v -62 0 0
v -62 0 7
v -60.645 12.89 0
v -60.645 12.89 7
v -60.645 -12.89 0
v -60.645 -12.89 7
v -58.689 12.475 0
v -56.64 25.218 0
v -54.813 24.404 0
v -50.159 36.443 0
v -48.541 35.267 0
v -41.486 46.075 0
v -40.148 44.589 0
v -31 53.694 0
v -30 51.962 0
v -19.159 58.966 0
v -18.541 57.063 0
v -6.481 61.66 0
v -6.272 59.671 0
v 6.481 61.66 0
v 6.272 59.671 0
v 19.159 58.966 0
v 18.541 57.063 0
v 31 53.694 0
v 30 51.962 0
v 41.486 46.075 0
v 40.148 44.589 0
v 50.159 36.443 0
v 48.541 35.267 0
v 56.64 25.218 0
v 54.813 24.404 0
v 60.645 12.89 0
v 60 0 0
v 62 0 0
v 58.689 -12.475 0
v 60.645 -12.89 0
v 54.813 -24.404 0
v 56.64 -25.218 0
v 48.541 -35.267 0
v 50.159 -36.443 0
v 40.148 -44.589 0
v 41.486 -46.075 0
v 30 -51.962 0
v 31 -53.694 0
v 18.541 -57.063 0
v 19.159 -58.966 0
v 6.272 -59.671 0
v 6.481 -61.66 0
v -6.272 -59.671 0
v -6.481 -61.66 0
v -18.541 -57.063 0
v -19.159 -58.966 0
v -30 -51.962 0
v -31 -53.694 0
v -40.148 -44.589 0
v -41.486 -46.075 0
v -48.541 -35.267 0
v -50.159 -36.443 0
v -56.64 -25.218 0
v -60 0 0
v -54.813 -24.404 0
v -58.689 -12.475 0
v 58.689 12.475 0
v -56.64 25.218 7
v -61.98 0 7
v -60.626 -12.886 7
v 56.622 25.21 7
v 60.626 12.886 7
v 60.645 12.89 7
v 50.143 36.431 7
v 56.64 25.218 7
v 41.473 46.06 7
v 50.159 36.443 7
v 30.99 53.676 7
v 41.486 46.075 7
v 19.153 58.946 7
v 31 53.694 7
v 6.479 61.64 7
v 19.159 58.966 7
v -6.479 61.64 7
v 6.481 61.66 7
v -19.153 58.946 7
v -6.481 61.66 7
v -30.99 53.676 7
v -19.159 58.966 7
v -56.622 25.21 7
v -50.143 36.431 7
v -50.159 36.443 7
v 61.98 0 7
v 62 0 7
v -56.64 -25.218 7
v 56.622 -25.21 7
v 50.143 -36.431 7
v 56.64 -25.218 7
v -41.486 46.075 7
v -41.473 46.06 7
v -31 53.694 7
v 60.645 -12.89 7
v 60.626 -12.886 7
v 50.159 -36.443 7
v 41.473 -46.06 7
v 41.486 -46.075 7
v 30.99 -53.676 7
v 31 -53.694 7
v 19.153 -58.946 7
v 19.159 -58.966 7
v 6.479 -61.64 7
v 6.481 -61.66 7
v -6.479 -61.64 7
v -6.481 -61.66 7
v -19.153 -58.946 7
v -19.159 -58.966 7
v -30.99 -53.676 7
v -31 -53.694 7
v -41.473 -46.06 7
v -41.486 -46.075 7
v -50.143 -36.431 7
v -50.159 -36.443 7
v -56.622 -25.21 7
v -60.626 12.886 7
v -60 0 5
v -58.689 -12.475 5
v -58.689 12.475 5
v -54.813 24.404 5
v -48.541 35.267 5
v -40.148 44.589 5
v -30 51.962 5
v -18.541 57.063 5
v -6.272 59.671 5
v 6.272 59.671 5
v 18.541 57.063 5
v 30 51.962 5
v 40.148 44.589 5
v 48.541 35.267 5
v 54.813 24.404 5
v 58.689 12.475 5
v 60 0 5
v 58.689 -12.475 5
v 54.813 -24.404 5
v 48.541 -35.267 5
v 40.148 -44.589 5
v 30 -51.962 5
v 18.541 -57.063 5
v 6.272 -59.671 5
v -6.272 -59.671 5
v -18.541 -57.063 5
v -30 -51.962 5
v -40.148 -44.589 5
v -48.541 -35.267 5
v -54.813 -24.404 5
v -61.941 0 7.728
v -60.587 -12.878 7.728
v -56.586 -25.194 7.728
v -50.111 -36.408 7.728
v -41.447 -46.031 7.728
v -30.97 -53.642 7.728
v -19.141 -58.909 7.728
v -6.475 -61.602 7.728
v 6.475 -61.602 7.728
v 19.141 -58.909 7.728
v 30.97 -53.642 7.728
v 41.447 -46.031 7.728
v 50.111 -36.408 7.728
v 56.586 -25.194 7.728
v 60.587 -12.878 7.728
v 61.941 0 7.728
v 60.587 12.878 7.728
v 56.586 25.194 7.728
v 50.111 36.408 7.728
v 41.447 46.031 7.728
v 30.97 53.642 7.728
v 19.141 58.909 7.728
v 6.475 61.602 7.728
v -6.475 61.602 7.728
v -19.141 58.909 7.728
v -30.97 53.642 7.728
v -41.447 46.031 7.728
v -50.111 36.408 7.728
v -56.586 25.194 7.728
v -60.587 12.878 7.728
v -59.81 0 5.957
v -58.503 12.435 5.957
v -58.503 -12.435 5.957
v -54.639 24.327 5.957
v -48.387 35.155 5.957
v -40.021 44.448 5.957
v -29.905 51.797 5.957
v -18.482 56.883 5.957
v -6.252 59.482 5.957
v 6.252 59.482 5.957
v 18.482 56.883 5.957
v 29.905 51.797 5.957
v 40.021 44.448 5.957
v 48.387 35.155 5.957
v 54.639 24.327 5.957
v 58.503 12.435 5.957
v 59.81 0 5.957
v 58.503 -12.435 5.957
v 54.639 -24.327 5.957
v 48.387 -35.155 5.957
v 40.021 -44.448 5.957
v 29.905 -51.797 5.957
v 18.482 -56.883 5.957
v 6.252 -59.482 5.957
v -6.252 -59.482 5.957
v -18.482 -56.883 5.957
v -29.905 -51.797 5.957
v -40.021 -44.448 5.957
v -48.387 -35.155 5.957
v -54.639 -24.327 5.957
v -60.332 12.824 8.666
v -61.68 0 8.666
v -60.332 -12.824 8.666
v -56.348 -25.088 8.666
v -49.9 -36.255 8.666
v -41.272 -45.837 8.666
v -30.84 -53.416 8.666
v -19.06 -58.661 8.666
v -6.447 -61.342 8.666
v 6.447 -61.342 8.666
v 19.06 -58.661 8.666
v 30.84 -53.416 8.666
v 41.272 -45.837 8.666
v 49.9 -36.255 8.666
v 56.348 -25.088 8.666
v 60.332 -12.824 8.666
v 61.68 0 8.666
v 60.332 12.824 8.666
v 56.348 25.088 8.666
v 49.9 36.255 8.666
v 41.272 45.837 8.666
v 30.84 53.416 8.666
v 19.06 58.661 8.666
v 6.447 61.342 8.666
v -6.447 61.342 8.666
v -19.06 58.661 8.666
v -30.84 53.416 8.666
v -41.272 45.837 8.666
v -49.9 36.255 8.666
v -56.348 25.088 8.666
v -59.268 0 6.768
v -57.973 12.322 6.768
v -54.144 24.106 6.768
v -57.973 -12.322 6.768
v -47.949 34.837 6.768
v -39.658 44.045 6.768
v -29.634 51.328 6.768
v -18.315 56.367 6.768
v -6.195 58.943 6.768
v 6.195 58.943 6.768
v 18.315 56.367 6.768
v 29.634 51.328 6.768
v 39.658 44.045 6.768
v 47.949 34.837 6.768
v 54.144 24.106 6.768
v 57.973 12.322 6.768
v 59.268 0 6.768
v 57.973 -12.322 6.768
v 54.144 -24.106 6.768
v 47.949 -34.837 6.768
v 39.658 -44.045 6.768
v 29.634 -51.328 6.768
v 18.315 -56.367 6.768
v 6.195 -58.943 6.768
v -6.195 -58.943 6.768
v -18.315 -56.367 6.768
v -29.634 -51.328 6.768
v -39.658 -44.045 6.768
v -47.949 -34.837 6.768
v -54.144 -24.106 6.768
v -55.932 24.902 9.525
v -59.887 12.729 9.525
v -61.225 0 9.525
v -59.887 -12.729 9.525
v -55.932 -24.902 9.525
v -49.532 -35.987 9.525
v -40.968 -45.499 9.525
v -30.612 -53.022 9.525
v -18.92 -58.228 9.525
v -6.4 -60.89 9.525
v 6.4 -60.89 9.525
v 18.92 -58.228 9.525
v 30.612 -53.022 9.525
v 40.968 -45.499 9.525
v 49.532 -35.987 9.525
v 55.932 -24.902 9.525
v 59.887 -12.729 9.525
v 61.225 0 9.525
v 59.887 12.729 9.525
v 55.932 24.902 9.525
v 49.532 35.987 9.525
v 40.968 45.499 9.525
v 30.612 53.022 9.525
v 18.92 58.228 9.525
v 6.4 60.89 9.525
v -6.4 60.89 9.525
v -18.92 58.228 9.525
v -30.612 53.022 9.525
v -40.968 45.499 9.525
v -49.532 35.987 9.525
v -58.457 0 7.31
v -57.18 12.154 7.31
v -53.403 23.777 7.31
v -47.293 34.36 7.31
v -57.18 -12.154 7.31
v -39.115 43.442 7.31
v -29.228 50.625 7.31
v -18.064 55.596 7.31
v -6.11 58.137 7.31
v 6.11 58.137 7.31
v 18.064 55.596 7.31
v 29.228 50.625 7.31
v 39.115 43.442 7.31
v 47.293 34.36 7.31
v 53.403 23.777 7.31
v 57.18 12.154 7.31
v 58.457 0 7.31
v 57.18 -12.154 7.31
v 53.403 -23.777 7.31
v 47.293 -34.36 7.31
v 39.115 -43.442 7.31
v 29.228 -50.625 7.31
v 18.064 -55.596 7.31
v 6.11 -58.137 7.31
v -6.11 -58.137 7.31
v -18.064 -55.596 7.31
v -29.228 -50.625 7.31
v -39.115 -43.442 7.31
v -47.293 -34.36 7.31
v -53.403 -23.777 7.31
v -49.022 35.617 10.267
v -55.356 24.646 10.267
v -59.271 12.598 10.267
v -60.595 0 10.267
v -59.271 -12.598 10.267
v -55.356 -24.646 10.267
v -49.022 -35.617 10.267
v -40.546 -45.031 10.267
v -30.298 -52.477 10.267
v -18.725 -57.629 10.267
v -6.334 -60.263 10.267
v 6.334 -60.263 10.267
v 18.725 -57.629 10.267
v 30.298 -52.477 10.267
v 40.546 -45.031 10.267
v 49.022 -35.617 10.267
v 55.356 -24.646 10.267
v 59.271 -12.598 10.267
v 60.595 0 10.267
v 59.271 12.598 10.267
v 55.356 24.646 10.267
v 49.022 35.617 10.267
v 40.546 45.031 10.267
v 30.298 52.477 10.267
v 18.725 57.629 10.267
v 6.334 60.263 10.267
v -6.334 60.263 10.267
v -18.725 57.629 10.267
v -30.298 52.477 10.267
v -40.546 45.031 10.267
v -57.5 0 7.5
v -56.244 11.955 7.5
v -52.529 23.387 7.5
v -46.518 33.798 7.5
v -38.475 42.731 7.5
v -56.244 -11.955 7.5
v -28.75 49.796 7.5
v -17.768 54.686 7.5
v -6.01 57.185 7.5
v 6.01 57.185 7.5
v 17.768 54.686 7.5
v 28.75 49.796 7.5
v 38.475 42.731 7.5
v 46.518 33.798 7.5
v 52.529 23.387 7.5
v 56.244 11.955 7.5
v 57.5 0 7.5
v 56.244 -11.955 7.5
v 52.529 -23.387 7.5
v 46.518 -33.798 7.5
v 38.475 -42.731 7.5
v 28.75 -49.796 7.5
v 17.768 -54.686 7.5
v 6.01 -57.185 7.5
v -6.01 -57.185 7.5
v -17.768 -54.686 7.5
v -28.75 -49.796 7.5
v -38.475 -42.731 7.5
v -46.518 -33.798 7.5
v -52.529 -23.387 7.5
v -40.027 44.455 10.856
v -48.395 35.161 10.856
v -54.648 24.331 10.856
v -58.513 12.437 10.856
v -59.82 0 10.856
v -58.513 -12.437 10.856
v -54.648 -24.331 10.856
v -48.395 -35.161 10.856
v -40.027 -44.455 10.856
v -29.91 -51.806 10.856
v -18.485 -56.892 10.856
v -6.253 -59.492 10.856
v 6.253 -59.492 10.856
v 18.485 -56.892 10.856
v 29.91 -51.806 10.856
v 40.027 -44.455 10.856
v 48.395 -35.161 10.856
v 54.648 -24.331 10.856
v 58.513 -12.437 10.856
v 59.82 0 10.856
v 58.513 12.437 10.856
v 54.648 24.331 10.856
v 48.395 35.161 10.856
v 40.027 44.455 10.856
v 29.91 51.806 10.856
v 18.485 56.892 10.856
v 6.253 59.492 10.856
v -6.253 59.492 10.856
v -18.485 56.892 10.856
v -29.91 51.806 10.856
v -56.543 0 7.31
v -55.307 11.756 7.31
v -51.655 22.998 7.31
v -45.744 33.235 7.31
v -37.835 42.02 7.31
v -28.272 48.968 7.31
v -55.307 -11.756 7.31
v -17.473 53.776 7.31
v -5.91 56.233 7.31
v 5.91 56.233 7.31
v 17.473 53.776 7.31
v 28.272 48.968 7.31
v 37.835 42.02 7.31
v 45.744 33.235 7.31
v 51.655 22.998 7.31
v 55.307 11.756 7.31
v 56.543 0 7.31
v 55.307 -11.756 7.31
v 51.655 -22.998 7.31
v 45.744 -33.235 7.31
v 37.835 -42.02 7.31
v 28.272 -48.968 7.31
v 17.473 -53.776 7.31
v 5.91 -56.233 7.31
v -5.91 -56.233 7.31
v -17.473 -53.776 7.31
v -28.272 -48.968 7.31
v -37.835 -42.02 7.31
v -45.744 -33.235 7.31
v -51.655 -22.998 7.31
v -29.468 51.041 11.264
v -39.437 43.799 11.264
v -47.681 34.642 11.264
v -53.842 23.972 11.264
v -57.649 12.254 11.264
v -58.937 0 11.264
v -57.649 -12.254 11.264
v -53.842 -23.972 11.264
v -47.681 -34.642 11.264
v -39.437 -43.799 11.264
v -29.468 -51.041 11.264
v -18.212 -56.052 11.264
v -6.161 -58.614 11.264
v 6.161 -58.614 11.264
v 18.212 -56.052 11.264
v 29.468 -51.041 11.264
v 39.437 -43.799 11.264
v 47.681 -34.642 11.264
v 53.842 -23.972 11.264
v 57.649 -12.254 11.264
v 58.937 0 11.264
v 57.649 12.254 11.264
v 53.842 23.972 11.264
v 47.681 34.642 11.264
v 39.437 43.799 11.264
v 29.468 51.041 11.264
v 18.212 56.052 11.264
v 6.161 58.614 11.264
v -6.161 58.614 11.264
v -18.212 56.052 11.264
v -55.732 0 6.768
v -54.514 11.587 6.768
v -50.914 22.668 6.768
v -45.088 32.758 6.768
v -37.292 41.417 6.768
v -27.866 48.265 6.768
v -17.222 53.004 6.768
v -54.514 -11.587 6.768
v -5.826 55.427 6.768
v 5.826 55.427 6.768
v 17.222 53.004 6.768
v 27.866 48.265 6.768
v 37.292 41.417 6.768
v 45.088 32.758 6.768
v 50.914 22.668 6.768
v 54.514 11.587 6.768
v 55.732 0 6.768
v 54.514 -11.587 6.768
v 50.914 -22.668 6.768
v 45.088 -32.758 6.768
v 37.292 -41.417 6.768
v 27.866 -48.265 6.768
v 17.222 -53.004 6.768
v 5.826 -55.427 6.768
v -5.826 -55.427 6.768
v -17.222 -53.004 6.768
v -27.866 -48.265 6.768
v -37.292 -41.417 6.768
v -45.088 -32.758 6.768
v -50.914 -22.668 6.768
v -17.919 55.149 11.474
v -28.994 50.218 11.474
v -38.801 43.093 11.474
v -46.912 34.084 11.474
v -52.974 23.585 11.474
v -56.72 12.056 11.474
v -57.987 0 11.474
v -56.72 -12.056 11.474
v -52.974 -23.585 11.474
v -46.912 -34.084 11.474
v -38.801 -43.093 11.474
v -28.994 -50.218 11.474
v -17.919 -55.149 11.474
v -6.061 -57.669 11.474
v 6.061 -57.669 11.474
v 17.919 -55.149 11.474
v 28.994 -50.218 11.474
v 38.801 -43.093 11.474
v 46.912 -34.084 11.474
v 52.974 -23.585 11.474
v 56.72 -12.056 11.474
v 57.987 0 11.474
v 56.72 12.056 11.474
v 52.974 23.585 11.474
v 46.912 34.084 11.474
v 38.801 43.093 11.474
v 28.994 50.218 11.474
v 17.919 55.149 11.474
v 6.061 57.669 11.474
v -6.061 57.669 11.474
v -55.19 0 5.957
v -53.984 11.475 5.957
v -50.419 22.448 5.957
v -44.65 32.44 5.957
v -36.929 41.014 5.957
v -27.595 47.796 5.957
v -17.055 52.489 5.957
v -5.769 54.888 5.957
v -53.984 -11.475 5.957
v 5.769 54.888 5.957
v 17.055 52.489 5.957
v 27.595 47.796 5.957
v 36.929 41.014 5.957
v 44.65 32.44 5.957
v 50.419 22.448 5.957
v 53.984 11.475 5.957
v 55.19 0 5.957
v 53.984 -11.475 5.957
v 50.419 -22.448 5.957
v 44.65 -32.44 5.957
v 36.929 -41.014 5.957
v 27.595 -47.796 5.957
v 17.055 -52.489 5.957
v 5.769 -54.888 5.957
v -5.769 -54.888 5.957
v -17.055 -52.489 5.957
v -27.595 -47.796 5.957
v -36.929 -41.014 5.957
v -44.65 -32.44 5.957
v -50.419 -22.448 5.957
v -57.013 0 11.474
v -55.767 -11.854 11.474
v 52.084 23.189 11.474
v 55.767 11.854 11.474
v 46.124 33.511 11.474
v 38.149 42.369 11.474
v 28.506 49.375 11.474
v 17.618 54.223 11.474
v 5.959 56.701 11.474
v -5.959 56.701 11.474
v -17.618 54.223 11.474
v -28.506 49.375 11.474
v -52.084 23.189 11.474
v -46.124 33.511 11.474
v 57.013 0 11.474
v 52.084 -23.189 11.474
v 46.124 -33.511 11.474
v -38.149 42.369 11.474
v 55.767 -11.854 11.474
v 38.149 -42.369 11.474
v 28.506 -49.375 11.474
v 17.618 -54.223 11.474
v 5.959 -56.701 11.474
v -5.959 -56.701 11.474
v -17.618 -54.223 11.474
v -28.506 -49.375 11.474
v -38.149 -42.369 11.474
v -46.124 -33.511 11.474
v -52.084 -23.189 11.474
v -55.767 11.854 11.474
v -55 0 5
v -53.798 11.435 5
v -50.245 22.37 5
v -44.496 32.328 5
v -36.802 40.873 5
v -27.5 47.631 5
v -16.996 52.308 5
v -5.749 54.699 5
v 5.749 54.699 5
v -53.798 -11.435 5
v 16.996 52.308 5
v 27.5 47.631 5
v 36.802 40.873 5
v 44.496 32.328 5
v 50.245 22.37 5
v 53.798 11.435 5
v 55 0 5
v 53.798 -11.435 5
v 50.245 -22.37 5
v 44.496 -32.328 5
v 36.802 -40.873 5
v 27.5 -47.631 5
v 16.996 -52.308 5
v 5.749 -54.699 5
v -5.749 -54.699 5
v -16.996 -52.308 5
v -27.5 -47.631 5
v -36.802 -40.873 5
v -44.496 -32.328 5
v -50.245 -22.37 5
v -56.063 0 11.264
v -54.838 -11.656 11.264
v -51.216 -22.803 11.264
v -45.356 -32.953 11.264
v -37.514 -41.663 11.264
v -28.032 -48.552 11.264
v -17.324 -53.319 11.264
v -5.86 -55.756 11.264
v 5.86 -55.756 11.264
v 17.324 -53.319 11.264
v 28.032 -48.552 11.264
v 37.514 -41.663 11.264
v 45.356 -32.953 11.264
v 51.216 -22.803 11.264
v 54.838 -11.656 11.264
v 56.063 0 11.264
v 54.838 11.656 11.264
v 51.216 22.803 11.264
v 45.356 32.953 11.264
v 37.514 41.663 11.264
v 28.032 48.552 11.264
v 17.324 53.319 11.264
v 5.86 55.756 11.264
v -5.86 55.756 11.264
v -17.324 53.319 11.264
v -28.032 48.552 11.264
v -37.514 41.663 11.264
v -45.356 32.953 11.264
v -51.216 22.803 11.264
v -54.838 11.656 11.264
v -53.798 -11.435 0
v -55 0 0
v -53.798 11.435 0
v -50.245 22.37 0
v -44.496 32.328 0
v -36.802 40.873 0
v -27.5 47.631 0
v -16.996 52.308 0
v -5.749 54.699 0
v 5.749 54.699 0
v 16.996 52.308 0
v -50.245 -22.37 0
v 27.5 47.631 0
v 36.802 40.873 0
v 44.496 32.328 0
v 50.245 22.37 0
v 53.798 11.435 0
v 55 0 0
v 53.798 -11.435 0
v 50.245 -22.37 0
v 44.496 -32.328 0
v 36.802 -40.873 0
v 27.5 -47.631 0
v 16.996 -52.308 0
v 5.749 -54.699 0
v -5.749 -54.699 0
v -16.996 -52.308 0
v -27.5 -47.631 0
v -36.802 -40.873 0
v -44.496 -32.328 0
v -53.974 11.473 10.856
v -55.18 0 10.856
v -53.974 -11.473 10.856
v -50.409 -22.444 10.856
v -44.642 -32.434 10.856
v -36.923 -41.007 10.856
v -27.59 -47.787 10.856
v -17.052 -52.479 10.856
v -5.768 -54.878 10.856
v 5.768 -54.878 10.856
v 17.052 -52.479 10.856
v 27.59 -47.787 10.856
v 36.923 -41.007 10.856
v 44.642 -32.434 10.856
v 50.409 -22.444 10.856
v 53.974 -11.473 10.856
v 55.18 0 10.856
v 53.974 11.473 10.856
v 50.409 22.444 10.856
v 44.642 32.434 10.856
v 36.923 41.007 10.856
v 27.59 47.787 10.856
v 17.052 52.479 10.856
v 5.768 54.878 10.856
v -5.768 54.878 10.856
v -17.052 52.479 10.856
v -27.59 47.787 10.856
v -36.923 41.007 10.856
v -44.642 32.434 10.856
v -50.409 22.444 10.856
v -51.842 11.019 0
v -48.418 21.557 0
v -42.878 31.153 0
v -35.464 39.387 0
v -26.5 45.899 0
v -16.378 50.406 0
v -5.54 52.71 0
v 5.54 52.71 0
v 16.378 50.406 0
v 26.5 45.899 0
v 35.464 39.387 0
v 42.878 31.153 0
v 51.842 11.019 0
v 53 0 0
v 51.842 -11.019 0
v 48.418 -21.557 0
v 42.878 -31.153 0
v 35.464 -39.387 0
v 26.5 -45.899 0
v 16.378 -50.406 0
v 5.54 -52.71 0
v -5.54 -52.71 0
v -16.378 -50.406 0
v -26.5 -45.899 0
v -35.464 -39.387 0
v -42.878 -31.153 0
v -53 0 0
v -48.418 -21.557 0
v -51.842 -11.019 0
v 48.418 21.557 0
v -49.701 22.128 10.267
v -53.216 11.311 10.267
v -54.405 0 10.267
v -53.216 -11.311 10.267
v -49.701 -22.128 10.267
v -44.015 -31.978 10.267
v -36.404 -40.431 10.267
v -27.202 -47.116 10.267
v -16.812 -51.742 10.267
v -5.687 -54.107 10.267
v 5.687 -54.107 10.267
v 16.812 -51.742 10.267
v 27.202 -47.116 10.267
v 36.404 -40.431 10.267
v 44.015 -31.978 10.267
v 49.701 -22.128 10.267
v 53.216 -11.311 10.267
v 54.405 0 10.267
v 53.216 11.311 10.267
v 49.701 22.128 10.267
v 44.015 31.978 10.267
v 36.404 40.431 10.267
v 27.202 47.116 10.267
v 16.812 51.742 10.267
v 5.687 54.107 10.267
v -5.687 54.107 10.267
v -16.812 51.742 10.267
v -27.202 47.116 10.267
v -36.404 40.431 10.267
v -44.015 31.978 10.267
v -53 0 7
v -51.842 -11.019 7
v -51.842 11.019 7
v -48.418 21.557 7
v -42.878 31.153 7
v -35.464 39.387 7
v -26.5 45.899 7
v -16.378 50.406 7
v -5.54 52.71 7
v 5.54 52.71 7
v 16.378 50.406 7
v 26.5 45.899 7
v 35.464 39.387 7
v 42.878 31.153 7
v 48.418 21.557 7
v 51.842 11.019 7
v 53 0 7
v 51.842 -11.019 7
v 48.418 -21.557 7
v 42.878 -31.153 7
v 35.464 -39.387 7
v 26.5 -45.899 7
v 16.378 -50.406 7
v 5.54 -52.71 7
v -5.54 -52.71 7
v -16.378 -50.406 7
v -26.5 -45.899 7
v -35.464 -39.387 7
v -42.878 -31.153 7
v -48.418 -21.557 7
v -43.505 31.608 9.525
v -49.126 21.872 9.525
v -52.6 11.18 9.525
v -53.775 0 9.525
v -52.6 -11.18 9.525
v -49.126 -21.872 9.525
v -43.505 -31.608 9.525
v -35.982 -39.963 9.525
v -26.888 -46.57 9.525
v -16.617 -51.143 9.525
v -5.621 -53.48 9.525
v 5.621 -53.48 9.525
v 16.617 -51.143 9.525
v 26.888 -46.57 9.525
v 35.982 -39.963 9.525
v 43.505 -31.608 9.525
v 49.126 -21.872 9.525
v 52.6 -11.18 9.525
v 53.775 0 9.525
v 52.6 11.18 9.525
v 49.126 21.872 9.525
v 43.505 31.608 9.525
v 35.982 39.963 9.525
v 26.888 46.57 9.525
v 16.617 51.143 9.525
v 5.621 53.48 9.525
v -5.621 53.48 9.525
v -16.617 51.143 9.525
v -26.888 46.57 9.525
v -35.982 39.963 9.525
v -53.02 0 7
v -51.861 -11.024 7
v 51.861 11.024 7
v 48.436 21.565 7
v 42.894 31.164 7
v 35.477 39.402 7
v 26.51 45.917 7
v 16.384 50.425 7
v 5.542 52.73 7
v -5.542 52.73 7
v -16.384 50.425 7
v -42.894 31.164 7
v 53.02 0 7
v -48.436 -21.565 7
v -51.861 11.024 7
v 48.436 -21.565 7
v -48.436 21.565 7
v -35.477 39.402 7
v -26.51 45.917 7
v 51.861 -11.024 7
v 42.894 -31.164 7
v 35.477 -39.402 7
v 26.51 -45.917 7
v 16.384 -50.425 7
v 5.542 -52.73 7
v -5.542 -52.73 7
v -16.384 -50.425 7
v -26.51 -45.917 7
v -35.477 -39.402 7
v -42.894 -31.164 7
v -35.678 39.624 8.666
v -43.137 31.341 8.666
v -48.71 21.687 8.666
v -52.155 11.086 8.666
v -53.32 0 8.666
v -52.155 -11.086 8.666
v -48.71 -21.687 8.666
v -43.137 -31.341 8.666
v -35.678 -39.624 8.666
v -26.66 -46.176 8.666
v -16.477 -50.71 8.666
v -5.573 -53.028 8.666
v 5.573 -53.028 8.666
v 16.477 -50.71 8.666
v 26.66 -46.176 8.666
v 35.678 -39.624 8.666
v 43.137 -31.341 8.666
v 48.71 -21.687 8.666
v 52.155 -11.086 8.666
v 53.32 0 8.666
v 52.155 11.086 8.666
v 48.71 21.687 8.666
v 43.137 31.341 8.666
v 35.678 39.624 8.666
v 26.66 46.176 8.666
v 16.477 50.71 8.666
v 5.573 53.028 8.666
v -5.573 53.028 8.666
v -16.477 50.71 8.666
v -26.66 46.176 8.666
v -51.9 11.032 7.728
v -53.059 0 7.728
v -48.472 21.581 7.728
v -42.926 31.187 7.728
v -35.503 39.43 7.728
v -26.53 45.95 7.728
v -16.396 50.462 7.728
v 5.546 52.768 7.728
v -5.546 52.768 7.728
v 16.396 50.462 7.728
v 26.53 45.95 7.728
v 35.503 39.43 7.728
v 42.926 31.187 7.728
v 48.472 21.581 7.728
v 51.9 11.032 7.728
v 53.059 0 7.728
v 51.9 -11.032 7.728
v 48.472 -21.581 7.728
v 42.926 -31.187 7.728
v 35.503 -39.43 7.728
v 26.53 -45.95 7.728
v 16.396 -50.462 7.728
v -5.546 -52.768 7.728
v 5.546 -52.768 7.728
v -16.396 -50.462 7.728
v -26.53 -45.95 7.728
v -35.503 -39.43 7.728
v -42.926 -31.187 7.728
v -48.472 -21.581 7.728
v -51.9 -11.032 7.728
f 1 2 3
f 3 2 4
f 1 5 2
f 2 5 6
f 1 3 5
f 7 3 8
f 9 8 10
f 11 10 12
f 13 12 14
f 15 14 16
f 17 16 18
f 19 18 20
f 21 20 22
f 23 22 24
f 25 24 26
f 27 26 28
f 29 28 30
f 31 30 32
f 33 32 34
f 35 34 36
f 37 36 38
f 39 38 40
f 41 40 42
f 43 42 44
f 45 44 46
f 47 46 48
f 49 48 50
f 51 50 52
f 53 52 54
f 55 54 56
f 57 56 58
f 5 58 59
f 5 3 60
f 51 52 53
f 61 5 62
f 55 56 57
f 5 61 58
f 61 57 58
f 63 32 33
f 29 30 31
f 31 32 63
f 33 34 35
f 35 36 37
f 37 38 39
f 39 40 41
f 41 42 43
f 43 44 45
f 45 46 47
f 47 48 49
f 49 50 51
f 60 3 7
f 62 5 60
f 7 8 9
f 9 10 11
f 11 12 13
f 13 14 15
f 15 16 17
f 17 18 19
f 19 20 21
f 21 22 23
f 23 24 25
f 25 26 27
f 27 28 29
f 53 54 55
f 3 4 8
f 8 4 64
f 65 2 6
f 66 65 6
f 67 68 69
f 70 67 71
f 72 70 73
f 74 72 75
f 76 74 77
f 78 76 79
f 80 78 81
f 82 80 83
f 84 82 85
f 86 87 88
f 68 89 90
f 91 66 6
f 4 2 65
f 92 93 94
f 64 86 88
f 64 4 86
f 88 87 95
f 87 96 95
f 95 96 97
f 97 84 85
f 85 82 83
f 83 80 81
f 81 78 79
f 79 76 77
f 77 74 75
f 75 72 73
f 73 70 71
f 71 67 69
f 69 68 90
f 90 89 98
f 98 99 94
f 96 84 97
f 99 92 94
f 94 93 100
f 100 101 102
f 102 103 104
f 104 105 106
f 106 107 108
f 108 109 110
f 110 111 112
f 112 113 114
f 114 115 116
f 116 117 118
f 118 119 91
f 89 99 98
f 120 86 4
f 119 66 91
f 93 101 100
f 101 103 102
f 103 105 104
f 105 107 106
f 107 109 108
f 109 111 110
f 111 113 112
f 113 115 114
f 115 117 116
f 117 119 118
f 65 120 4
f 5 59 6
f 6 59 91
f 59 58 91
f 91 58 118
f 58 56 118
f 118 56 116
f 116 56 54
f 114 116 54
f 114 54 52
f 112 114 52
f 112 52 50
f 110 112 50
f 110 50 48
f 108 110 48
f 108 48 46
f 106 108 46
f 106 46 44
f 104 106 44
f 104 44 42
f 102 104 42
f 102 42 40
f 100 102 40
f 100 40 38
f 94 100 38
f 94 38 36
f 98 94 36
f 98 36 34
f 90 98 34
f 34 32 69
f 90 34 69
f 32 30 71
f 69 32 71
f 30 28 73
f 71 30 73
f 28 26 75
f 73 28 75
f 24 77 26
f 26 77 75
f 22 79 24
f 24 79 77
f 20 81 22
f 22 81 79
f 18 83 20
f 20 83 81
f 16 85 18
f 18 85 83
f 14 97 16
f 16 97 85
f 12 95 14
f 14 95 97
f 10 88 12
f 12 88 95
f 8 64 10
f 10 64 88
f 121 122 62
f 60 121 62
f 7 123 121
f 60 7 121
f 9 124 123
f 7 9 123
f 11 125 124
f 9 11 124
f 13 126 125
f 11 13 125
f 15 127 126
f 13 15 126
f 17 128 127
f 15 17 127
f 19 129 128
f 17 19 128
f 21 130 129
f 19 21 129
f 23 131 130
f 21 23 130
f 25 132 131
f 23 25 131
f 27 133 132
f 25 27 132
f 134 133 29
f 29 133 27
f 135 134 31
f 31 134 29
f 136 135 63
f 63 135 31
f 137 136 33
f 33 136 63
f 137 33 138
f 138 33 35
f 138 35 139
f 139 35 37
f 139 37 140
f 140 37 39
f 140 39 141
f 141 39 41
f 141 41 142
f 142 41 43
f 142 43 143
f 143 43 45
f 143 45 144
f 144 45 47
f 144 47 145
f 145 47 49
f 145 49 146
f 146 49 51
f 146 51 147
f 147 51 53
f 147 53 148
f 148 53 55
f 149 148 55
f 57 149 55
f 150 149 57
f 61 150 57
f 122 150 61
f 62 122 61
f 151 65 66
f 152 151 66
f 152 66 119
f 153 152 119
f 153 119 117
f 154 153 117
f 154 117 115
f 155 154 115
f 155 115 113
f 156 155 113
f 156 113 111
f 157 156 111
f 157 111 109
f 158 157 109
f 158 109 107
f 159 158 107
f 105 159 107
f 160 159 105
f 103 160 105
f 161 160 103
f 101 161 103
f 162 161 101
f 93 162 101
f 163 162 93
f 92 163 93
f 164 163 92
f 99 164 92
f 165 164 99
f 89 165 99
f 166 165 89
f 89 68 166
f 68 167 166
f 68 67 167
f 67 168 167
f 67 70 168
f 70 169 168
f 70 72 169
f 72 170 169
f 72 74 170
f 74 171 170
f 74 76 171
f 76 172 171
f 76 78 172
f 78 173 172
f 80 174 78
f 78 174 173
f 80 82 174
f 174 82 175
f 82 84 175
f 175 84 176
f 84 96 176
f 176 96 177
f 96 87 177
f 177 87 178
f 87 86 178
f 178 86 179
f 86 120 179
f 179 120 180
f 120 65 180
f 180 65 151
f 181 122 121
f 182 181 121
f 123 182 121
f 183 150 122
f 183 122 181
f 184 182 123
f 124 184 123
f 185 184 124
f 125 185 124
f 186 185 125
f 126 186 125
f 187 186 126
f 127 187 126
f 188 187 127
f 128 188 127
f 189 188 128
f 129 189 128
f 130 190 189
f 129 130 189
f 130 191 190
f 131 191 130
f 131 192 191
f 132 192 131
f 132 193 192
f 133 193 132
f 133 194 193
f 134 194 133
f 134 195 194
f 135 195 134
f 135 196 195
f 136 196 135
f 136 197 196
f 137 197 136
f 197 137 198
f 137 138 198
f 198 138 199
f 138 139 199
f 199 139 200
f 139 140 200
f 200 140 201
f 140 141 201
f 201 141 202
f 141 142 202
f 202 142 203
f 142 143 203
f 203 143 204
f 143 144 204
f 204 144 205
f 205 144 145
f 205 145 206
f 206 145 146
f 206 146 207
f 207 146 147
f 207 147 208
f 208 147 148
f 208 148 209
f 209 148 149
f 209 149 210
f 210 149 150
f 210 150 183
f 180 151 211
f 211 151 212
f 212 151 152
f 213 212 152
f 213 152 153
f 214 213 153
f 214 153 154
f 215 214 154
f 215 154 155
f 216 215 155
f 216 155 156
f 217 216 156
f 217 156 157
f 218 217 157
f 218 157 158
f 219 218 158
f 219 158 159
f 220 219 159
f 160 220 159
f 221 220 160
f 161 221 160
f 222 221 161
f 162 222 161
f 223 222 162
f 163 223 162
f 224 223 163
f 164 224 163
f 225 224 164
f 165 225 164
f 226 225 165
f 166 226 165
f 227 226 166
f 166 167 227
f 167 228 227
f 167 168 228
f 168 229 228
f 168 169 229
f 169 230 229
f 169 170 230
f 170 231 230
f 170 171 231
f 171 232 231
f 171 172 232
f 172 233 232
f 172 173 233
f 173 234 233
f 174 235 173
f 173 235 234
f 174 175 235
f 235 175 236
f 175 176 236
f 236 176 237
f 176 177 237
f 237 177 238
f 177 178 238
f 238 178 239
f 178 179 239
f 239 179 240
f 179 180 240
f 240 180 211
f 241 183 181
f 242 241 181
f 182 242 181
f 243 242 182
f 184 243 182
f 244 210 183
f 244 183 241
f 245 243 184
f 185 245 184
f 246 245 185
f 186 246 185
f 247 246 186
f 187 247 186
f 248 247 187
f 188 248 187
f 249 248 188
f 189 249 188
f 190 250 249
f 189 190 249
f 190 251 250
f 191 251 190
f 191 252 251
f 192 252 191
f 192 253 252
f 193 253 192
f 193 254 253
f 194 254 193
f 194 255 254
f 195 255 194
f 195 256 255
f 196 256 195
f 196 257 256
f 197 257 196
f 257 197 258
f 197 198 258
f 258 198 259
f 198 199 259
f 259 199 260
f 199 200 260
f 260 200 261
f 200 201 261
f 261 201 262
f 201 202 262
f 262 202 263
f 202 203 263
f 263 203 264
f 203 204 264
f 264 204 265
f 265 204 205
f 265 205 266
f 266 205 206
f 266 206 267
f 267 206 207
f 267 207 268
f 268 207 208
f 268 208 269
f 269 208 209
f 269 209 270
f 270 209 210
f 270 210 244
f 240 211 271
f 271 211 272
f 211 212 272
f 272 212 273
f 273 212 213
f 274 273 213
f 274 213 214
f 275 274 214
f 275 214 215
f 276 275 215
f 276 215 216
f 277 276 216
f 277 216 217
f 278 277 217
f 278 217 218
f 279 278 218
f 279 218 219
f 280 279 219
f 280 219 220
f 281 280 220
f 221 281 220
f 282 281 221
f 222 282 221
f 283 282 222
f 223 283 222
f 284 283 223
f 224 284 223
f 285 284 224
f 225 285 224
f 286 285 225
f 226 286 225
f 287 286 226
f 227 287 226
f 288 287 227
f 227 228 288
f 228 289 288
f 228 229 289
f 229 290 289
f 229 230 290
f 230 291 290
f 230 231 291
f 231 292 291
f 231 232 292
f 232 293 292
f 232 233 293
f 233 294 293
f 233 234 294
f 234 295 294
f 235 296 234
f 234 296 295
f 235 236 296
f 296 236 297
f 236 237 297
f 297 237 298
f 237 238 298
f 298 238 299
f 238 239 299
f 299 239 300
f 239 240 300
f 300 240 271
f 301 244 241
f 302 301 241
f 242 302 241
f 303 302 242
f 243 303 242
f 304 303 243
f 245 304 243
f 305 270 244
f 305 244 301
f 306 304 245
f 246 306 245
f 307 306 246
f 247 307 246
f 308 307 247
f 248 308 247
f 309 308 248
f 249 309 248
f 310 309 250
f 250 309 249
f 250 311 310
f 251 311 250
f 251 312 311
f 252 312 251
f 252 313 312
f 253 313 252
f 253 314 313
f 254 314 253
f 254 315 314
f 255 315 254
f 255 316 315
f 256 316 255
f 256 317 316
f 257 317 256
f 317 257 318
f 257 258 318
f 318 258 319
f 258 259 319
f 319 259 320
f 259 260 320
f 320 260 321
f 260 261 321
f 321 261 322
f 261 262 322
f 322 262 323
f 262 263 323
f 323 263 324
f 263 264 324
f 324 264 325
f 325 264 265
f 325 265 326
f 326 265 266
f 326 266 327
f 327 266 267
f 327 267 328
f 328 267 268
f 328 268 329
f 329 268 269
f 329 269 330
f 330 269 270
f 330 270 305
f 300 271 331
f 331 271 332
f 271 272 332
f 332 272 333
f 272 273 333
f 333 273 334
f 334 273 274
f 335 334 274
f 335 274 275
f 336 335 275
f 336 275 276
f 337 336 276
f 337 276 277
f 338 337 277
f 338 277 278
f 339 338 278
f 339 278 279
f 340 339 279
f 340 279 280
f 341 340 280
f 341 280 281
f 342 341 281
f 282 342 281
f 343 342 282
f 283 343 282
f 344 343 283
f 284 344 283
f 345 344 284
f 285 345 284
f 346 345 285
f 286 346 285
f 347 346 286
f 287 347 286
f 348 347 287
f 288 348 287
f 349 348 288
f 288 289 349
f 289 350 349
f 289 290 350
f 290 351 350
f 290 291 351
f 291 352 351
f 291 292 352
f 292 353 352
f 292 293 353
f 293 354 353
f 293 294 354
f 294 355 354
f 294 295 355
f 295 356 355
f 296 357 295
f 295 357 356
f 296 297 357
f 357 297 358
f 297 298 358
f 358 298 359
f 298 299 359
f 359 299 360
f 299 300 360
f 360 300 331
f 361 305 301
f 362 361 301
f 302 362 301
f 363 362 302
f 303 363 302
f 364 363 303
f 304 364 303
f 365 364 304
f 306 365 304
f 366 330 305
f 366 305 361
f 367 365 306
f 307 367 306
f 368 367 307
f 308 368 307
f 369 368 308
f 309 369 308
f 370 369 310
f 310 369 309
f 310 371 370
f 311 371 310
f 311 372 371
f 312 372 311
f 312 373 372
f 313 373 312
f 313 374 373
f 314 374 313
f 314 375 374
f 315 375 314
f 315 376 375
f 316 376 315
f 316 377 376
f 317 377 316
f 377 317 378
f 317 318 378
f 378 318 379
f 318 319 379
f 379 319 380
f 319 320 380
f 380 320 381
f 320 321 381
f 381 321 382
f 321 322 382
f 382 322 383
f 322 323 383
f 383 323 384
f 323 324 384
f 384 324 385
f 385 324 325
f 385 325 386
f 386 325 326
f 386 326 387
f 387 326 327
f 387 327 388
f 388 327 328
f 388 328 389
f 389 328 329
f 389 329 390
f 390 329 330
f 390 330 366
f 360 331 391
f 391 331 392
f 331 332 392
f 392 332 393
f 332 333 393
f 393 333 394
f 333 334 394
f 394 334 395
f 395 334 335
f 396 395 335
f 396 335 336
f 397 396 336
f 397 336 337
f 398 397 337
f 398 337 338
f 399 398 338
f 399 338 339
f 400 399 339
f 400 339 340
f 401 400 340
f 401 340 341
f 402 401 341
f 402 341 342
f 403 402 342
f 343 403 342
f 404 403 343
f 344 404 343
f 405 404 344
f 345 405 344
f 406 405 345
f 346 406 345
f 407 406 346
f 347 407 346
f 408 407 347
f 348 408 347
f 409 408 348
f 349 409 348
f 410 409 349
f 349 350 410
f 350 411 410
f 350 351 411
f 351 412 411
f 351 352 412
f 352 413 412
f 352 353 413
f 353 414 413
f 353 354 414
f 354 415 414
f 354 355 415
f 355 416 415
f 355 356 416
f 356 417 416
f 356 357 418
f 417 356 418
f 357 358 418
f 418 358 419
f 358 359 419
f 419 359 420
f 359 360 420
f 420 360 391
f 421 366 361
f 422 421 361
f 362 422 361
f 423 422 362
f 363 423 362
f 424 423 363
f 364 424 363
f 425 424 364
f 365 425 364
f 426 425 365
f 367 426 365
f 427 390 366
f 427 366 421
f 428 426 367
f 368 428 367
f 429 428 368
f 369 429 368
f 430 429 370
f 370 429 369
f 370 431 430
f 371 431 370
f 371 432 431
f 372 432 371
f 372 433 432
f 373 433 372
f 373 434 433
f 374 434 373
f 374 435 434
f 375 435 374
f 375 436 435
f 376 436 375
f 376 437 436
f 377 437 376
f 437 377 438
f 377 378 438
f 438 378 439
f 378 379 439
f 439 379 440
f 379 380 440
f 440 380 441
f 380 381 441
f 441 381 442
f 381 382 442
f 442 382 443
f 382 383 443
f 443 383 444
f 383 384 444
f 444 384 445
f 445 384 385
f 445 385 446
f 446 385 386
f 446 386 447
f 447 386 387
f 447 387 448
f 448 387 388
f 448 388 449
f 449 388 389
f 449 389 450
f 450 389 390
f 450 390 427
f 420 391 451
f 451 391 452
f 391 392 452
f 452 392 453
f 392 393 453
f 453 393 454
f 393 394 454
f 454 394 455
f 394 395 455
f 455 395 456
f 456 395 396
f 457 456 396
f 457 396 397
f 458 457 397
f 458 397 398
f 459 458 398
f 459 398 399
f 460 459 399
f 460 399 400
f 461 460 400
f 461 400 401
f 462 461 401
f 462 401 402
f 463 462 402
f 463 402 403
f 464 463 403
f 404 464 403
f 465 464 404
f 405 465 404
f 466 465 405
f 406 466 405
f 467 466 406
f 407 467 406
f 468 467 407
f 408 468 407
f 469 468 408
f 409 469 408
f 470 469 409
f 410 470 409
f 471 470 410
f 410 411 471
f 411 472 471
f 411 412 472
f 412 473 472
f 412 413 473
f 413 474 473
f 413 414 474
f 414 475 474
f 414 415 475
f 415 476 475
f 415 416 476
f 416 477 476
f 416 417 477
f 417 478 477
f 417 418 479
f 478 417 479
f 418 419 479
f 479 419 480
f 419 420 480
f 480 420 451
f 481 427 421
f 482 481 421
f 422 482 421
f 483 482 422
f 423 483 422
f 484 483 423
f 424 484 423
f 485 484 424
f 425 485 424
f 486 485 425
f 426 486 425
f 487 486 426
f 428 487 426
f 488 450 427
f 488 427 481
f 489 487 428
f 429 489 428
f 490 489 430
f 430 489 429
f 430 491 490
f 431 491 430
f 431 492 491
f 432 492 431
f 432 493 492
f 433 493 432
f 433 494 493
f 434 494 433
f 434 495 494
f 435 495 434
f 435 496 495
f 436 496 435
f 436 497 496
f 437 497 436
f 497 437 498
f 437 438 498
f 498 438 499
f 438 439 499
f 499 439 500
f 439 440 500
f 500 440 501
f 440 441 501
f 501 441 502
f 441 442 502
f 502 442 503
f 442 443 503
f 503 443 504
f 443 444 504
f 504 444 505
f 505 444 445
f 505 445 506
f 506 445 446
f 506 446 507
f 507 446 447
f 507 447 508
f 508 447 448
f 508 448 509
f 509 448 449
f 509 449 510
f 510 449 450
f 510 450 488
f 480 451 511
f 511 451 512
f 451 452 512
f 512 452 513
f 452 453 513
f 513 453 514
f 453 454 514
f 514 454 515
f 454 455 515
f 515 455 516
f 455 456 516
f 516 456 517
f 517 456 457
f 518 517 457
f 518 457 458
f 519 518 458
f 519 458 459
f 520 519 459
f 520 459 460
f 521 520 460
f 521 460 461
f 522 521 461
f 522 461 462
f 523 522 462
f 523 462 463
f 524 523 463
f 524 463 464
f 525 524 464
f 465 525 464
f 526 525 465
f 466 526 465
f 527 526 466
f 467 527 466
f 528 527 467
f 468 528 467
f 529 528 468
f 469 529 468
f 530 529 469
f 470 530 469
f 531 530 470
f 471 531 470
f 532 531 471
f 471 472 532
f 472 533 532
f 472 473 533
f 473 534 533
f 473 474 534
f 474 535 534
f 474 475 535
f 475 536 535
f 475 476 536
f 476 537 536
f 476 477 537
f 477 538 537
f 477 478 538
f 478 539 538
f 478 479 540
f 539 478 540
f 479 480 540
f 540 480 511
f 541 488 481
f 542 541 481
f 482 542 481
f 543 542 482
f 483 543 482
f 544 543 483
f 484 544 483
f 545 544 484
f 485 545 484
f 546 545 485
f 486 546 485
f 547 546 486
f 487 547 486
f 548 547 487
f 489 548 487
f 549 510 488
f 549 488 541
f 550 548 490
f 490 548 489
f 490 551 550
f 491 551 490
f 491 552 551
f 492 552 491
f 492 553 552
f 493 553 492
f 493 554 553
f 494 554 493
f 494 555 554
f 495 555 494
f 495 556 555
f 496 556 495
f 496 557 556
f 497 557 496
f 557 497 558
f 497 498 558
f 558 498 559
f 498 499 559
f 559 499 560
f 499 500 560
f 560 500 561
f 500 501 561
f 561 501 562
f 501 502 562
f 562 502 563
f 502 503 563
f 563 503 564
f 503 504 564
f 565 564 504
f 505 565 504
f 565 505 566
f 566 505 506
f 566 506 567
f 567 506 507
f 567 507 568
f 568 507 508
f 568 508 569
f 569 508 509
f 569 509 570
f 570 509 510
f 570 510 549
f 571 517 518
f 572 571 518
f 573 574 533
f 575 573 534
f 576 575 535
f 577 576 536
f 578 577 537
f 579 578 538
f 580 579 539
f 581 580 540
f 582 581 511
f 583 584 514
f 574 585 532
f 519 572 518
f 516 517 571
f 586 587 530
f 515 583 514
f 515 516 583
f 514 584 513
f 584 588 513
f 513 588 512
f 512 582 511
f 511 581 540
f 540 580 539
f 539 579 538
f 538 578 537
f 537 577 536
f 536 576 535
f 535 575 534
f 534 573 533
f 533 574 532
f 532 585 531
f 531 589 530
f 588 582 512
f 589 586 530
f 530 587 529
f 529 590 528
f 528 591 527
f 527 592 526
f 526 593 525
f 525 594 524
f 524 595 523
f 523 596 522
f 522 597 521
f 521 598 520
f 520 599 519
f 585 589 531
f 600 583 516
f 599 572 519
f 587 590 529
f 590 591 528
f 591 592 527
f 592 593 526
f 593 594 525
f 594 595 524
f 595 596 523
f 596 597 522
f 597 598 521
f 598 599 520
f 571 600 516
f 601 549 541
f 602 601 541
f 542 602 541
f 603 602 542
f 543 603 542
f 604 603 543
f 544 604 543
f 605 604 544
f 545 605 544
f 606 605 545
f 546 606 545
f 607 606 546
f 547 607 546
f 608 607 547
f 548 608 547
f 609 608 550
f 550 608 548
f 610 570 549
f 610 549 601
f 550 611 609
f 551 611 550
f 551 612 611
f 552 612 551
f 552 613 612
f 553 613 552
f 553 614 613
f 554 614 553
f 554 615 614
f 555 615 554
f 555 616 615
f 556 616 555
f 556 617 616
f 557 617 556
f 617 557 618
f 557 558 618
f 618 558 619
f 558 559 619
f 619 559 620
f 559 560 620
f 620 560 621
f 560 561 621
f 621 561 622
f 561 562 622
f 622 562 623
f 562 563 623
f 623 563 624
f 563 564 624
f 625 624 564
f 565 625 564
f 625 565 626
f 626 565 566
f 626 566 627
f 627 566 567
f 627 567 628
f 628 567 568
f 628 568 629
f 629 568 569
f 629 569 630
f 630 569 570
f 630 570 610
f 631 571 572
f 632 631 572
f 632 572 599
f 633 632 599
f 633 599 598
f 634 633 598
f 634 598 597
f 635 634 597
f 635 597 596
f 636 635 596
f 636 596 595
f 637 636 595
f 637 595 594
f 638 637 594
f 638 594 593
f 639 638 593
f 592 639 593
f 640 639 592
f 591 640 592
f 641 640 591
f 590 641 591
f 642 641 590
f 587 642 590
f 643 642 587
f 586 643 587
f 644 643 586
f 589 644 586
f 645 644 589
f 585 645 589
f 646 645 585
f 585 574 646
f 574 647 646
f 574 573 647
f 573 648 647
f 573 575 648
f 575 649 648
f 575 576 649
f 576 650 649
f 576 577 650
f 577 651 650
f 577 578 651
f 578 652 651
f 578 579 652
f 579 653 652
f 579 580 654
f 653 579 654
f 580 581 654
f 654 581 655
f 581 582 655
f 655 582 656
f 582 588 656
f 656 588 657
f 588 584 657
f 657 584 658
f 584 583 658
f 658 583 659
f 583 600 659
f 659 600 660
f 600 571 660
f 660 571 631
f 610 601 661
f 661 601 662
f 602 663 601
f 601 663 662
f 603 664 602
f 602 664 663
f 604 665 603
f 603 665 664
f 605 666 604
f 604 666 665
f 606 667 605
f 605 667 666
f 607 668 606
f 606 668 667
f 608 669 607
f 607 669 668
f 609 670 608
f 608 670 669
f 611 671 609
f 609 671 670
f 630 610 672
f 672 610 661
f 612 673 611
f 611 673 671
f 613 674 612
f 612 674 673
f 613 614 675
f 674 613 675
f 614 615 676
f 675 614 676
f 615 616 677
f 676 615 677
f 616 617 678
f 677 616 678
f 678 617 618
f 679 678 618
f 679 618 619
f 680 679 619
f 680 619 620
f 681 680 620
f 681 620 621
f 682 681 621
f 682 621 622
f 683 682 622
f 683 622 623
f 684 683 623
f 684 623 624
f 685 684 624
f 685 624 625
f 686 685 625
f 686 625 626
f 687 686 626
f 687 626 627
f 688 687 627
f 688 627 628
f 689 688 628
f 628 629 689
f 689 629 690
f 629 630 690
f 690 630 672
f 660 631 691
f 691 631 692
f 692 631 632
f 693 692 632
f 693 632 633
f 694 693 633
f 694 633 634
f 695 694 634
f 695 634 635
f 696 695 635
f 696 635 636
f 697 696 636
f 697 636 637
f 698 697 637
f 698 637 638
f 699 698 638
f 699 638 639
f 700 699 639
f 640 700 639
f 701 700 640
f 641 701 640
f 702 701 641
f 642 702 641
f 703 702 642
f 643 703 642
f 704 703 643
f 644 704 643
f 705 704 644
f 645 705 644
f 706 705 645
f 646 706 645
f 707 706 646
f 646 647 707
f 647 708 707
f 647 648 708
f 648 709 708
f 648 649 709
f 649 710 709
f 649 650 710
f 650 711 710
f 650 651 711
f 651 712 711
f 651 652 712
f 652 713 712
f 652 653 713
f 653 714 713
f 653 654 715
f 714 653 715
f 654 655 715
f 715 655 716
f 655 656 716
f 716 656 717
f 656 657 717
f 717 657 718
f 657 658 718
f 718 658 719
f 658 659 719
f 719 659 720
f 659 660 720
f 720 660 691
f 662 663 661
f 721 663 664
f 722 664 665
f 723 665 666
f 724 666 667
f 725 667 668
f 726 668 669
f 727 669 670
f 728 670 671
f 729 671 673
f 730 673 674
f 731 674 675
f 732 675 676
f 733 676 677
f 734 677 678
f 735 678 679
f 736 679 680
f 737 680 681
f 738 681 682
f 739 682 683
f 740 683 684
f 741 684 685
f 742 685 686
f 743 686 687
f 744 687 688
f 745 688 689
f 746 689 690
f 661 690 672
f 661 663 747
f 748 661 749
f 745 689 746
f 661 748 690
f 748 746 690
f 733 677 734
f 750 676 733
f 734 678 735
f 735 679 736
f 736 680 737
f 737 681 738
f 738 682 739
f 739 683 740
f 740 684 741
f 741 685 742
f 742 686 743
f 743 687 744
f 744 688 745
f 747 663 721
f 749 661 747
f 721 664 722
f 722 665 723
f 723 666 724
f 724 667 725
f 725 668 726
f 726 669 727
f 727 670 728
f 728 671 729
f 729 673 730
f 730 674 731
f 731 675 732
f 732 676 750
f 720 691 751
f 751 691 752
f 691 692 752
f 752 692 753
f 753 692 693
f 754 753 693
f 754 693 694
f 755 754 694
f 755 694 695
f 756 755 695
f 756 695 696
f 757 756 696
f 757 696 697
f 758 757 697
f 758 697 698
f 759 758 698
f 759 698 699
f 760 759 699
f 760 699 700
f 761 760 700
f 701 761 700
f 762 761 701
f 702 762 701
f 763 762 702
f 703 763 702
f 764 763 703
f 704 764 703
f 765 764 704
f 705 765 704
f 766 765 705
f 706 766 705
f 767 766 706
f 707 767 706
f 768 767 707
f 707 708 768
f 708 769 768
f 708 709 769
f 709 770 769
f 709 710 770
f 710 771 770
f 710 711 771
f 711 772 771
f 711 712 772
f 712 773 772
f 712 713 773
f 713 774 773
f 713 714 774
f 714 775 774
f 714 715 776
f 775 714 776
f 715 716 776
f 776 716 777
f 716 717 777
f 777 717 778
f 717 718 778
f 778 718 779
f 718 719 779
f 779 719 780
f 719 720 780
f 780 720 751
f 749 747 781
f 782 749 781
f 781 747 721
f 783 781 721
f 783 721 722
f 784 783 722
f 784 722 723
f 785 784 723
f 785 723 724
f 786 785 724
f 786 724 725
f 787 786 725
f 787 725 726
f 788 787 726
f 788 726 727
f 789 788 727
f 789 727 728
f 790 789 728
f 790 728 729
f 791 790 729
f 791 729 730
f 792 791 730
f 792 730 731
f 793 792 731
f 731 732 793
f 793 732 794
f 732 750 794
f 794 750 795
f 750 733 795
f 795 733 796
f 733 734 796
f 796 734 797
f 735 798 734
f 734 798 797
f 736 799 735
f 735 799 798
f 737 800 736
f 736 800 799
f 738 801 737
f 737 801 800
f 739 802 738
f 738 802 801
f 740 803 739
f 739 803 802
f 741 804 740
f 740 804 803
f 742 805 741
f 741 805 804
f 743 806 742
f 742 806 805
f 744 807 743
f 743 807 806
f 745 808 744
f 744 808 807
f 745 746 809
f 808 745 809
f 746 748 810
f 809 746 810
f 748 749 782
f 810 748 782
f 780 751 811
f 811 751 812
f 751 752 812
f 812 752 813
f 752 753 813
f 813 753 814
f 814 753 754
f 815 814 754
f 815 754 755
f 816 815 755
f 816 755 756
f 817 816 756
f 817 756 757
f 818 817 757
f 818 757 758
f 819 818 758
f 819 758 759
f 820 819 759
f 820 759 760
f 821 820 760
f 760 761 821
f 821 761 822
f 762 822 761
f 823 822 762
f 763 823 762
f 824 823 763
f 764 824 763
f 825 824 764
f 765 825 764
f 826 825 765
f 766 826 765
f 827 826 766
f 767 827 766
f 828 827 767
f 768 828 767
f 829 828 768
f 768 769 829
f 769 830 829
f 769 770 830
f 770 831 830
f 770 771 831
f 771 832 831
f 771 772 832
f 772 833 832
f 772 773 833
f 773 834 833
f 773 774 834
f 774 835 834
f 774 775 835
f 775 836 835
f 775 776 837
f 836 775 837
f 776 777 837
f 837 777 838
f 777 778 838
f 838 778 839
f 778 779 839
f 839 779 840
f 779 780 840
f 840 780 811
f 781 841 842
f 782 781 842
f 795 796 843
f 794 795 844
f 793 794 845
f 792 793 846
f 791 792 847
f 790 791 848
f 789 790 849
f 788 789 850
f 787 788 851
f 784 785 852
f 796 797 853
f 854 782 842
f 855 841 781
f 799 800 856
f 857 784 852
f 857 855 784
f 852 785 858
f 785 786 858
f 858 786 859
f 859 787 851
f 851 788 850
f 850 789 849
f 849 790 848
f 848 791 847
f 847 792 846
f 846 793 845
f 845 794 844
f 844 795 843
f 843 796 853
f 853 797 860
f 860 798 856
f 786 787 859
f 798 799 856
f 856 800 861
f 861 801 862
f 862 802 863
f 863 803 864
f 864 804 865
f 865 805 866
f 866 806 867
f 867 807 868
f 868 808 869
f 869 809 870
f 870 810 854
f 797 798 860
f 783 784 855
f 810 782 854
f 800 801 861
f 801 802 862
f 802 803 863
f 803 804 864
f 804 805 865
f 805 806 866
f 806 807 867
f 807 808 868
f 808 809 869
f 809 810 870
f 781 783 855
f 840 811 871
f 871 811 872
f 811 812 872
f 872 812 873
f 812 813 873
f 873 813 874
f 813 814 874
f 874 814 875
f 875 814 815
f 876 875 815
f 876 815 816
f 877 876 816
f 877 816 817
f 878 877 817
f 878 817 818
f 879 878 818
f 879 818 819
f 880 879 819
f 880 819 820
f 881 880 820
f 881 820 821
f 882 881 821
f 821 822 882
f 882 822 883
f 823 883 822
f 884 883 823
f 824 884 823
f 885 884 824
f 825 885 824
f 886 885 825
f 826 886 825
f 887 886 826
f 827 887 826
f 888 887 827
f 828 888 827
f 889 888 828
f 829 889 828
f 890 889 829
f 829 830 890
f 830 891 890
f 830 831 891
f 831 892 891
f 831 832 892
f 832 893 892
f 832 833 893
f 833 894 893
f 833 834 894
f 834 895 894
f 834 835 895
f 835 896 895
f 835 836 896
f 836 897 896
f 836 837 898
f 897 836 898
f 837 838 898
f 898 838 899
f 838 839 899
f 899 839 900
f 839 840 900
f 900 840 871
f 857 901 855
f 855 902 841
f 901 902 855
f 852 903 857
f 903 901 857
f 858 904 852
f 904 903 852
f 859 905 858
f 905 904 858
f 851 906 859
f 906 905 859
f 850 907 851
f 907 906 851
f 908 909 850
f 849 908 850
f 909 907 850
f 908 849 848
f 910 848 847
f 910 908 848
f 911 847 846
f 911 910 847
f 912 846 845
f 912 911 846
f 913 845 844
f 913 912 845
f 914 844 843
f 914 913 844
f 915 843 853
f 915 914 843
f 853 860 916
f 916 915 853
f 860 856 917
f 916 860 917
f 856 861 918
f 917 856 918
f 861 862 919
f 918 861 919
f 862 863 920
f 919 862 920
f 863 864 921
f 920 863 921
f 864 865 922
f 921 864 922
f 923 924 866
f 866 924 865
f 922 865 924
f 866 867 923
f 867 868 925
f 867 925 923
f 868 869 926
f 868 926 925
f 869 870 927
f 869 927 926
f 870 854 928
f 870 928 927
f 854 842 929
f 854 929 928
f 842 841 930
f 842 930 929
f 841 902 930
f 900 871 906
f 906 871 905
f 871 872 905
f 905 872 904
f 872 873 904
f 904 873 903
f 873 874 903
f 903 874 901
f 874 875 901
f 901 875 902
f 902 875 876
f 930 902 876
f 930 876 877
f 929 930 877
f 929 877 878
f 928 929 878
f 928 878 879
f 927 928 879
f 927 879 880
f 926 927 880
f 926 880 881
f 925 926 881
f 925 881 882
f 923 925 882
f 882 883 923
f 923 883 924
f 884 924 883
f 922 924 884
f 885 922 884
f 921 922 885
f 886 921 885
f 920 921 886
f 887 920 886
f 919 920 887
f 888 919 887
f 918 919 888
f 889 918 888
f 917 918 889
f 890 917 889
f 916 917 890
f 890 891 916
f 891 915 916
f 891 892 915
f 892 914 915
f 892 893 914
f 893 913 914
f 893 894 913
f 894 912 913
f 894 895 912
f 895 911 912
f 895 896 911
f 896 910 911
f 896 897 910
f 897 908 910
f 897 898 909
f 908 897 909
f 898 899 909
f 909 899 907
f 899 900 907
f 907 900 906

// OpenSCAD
$fs = 1;
r = 57.5;
ep = 9;
h = 7;

module forme(e, h) {
	translate([-h,0,0]) circle(r = e/2);
	translate([-h/2, 0, 0]) square ([h,e],center = true);
}

//forme(ep, h);

difference() {

   rotate_extrude(convexity = 10)
	translate([r, 0, 0]) rotate(-90,[0,0,1]) forme(ep, h);

	rotate_extrude(convexity = 10)
	translate([r, 0, 0]) rotate(-90,[0,0,1]) forme(ep-4, h-2);

}
